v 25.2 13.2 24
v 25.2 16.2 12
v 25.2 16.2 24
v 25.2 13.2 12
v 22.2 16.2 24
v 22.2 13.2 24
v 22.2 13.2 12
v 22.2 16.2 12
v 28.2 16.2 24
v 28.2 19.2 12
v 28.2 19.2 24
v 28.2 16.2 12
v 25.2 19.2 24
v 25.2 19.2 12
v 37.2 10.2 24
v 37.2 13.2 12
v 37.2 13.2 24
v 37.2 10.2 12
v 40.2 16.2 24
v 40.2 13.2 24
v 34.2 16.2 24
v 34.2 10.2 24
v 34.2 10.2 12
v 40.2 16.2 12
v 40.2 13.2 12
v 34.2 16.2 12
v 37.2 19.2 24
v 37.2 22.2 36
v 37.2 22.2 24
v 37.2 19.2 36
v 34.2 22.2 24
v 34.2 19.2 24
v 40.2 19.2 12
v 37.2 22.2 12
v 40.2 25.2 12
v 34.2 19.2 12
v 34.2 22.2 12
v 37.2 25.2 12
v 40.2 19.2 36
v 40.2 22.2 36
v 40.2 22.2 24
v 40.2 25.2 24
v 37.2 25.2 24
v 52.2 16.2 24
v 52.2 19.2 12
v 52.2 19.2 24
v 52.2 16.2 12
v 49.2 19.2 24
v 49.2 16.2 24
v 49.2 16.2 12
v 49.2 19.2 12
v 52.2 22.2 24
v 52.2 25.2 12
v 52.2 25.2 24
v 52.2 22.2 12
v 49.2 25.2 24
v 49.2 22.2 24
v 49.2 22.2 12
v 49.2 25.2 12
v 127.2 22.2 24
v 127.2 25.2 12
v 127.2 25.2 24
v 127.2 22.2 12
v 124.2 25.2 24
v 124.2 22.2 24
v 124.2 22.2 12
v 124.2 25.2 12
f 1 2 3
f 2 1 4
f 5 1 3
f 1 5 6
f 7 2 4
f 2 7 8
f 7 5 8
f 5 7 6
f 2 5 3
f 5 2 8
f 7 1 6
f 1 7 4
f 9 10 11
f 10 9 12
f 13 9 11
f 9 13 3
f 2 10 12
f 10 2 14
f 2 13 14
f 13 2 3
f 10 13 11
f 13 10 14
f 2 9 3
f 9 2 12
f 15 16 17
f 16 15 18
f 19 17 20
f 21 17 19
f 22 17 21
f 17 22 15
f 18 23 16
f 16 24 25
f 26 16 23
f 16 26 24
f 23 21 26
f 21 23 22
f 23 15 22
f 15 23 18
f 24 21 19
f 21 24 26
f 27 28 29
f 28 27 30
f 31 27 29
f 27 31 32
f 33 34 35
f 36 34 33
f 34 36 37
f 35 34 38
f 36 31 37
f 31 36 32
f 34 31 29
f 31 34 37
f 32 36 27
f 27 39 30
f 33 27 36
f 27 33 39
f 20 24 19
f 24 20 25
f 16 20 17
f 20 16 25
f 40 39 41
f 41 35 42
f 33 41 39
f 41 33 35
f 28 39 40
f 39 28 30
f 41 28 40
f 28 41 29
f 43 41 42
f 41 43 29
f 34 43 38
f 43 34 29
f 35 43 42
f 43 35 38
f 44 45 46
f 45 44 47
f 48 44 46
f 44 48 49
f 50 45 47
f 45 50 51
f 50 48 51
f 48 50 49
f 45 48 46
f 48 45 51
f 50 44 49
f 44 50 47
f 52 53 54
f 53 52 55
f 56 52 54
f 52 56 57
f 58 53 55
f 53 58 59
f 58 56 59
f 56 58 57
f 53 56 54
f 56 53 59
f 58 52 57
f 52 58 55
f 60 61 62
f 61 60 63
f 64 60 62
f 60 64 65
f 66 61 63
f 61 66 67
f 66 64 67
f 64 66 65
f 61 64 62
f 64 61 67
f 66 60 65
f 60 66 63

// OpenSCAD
union() {
	translate(v = [22.200000000000003, 13.200000000000001, 12.0]) {
		cube(size = [3.0, 3.0, 12.0]);
	}
	translate(v = [25.200000000000003, 16.200000000000003, 12.0]) {
		cube(size = [3.0, 3.0, 12.0]);
	}
	translate(v = [34.2, 10.200000000000001, 12.0]) {
		cube(size = [3.0, 3.0, 12.0]);
	}
	translate(v = [34.2, 13.200000000000001, 12.0]) {
		cube(size = [3.0, 3.0, 12.0]);
	}
	translate(v = [34.2, 19.200000000000003, 12.0]) {
		cube(size = [3.0, 3.0, 12.0]);
	}
	translate(v = [37.2, 13.200000000000001, 12.0]) {
		cube(size = [3.0, 3.0, 12.0]);
	}
	translate(v = [37.2, 19.200000000000003, 12.0]) {
		cube(size = [3.0, 3.0, 24.0]);
	}
	translate(v = [37.2, 22.200000000000003, 12.0]) {
		cube(size = [3.0, 3.0, 12.0]);
	}
	translate(v = [49.2, 16.200000000000003, 12.0]) {
		cube(size = [3.0, 3.0, 12.0]);
	}
	translate(v = [49.2, 22.200000000000003, 12.0]) {
		cube(size = [3.0, 3.0, 12.0]);
	}
	translate(v = [124.2, 22.200000000000003, 12.0]) {
		cube(size = [3.0, 3.0, 12.0]);
	}
}
